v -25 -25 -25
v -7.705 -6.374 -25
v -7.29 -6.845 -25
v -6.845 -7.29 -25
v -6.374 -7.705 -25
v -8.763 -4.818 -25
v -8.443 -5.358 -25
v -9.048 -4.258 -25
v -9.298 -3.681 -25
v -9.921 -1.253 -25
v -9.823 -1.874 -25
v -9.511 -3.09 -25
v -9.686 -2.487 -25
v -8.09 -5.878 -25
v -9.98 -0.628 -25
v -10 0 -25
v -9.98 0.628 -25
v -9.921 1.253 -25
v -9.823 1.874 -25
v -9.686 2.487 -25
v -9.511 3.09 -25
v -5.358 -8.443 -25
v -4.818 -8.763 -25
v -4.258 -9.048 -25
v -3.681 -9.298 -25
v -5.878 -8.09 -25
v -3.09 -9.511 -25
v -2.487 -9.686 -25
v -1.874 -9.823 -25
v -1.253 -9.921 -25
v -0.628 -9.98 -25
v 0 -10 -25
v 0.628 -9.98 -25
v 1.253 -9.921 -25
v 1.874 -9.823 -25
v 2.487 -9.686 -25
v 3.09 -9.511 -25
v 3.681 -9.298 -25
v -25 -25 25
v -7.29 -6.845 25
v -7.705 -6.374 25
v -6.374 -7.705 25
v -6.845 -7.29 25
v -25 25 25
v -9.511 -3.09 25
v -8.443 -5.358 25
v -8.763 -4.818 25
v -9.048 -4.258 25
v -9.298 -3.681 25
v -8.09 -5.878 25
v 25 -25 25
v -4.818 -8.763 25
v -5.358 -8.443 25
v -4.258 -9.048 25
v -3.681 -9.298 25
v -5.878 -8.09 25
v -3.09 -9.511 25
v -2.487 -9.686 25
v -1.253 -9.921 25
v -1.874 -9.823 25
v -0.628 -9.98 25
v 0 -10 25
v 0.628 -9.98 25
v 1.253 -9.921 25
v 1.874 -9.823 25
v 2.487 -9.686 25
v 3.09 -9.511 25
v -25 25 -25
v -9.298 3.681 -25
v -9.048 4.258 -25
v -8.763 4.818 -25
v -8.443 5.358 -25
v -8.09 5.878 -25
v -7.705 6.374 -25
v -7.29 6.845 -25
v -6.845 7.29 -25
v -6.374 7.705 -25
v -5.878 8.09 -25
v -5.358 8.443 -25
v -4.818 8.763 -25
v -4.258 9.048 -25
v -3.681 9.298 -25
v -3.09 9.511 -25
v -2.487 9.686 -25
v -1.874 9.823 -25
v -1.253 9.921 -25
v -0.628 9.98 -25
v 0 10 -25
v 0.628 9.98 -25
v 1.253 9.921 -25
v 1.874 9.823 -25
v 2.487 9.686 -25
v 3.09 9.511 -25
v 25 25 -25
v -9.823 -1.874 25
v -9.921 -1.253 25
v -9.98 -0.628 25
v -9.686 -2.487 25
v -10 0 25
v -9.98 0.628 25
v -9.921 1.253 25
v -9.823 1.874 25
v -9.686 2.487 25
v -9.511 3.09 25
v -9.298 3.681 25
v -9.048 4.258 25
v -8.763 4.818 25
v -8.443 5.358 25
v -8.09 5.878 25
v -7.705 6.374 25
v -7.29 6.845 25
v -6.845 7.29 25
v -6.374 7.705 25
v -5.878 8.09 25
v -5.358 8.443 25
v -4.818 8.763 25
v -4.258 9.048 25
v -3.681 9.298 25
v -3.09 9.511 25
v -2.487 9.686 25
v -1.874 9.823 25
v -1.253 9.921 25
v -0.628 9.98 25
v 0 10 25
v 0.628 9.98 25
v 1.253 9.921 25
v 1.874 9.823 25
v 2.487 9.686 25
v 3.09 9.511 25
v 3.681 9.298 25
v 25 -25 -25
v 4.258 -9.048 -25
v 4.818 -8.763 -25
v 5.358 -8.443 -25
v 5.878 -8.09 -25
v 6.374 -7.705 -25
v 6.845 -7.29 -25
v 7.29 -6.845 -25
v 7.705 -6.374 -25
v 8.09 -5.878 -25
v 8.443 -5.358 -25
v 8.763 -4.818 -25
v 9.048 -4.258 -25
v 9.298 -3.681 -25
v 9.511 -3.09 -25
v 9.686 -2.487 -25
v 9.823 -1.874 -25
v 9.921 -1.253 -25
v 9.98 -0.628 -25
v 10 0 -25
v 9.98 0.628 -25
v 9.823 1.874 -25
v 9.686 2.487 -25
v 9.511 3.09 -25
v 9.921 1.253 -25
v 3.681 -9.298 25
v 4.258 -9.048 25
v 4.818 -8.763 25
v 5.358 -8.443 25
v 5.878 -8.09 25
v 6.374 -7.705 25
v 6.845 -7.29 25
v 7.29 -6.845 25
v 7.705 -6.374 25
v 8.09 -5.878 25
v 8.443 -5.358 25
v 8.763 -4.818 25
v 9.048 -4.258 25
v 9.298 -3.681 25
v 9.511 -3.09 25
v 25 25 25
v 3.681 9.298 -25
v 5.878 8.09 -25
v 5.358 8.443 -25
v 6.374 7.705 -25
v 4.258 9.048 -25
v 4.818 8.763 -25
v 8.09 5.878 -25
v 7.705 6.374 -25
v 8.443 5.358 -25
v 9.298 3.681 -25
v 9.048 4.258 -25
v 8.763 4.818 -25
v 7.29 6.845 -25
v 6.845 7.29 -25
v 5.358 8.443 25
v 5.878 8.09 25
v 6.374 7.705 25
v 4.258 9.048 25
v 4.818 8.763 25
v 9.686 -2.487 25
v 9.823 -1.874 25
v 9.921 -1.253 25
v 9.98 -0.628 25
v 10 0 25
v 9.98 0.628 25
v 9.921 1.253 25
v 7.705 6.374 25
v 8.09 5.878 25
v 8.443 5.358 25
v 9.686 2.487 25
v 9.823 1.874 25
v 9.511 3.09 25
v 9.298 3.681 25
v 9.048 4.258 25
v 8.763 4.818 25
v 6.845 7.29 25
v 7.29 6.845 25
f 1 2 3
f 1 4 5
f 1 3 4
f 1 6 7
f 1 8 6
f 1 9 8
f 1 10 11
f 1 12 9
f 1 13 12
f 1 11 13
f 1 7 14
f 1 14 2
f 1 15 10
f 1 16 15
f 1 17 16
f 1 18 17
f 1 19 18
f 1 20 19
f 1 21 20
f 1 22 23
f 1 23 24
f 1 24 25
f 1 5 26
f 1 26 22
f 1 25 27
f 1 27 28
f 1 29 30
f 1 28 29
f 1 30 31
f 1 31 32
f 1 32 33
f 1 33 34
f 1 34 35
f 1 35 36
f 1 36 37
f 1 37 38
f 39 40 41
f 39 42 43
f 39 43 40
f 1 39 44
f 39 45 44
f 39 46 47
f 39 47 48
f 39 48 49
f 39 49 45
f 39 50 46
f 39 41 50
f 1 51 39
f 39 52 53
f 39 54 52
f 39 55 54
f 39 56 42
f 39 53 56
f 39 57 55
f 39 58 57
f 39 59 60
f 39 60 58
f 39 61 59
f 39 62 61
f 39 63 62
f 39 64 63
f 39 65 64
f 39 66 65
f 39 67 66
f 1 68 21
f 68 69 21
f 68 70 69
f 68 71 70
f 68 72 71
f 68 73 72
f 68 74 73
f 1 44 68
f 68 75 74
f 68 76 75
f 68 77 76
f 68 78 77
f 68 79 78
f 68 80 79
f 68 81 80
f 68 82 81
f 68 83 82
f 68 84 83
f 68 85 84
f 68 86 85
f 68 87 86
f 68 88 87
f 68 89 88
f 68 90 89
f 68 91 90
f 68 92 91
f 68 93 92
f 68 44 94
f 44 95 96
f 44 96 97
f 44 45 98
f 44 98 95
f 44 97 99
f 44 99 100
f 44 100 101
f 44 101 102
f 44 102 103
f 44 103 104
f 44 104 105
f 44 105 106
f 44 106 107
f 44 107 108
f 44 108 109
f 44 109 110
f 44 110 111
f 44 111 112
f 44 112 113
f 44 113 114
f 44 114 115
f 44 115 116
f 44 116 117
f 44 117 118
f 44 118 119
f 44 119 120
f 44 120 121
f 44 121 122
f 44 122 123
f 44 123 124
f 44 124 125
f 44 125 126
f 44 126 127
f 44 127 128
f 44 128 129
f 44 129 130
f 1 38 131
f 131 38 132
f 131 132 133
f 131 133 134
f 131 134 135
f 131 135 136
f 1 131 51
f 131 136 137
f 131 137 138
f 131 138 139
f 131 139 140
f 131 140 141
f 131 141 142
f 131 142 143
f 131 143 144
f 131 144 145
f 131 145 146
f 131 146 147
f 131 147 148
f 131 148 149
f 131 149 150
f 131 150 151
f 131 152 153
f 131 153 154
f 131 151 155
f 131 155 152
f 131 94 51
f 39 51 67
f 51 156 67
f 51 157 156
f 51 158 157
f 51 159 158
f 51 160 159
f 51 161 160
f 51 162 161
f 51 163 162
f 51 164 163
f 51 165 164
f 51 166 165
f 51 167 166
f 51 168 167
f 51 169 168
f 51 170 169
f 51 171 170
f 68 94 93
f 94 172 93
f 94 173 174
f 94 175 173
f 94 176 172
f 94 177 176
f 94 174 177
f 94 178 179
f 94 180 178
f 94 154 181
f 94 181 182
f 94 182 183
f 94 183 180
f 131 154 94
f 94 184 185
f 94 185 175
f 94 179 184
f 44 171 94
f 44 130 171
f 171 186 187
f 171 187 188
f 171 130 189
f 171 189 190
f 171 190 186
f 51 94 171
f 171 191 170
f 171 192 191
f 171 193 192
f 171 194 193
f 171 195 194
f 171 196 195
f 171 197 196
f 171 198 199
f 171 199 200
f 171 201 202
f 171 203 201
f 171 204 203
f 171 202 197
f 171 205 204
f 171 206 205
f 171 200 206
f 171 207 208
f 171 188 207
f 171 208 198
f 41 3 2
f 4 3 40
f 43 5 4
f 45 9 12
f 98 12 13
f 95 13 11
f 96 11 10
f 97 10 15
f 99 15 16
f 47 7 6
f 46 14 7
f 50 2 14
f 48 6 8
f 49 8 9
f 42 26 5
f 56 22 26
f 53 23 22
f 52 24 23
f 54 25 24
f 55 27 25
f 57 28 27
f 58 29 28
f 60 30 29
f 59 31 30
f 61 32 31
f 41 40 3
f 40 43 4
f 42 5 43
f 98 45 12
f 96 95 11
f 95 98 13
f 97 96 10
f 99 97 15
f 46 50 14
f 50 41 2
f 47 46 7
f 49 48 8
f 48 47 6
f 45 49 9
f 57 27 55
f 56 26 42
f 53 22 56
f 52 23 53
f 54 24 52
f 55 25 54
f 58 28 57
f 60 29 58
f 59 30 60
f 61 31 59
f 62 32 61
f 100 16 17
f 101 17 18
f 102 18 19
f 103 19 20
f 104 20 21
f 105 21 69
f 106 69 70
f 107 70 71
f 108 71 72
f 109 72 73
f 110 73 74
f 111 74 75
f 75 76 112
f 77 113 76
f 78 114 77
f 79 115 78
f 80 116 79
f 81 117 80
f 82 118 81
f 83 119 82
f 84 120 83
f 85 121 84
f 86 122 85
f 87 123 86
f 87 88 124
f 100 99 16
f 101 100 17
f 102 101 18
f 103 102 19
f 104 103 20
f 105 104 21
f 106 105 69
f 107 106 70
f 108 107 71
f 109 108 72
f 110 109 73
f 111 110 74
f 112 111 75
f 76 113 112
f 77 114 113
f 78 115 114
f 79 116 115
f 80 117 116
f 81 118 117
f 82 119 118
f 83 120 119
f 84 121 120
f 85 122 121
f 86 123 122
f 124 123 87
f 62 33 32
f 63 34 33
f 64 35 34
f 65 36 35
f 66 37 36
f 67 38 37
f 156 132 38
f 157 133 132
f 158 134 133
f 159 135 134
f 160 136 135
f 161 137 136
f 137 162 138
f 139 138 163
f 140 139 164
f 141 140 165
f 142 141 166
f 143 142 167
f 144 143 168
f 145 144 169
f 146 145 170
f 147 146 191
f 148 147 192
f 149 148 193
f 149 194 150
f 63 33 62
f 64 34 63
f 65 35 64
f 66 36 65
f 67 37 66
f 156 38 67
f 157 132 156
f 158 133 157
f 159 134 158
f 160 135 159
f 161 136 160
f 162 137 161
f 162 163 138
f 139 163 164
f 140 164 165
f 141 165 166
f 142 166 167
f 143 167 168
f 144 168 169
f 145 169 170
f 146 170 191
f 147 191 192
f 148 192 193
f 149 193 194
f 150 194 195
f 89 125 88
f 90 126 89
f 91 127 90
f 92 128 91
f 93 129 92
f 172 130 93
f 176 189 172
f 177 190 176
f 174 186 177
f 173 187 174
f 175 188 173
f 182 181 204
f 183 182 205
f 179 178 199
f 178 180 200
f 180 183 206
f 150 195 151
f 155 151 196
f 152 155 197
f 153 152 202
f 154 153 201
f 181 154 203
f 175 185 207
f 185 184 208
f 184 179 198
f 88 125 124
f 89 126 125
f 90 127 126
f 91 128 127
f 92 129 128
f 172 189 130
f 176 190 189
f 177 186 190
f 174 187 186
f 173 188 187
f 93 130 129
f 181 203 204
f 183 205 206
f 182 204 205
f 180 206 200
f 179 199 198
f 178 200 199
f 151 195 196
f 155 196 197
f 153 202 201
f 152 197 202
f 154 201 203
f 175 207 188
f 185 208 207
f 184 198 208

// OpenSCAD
difference() {
    cube(50, center = true);
    cylinder(h = 52, d = 20, center = true, $fn = 100);
}
